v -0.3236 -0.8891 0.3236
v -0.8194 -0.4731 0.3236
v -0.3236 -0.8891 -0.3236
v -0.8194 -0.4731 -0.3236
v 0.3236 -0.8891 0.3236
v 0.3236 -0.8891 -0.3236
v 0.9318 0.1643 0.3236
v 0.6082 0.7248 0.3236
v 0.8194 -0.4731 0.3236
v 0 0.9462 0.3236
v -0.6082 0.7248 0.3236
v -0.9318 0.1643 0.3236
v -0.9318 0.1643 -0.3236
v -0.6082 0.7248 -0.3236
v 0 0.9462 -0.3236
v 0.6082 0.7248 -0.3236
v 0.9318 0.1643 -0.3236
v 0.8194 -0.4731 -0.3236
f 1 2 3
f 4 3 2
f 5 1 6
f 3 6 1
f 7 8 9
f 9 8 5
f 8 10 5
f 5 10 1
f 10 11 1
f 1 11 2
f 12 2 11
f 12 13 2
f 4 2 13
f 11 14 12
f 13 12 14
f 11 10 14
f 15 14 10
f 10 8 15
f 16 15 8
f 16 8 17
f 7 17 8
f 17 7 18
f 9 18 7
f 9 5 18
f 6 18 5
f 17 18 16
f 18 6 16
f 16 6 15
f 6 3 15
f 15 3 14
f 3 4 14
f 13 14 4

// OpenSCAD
polyhedron( points = [[-0.323615577126778, -0.889126490717206, 0.323615577092325], [-0.81942340631089, -0.473094324055003, 0.323615577092325], [-0.931813916678509, 0.164303934611052, 0.323615577092325], [-0.608198339509799, 0.72482255623301, 0.323615577092325], [5.97861792033672e-11, 0.946188648297745, 0.323615577092325], [0.608198339589618, 0.724822556123783, 0.323615577092325], [0.931813916657668, 0.164303934443711, 0.323615577092325], [0.819423406175575, -0.47309432420216, 0.323615577092325], [0.323615577076428, -0.889126490717206, 0.323615577092325], [-0.32361557709772, -0.889126490637368, -0.323615577110882], [-0.819423406242932, -0.473094324007806, -0.323615577001986], [-0.931813916594839, 0.164303934596302, -0.323615577110882], [-0.608198339411599, 0.724822556243417, -0.323615577081823], [5.97861792033672e-11, 0.946188648212783, -0.323615577110882], [0.608198339616924, 0.724822556028886, -0.323615577081823], [0.931813916573994, 0.16430393442896, -0.323615577110882], [0.819423406086859, -0.473094324245531, -0.323615577081823], [0.323615577076428, -0.889126490637368, -0.323615577139942]], faces = [[0, 1, 10, 9], [0, 9, 17, 8], [0, 8, 7, 6, 5, 4, 3, 2, 1], [1, 2, 11, 10], [2, 3, 12, 11], [3, 4, 13, 12], [4, 5, 14, 13], [5, 6, 15, 14], [6, 7, 16, 15], [7, 8, 17, 16], [9, 10, 11, 12, 13, 14, 15, 16, 17]]);
